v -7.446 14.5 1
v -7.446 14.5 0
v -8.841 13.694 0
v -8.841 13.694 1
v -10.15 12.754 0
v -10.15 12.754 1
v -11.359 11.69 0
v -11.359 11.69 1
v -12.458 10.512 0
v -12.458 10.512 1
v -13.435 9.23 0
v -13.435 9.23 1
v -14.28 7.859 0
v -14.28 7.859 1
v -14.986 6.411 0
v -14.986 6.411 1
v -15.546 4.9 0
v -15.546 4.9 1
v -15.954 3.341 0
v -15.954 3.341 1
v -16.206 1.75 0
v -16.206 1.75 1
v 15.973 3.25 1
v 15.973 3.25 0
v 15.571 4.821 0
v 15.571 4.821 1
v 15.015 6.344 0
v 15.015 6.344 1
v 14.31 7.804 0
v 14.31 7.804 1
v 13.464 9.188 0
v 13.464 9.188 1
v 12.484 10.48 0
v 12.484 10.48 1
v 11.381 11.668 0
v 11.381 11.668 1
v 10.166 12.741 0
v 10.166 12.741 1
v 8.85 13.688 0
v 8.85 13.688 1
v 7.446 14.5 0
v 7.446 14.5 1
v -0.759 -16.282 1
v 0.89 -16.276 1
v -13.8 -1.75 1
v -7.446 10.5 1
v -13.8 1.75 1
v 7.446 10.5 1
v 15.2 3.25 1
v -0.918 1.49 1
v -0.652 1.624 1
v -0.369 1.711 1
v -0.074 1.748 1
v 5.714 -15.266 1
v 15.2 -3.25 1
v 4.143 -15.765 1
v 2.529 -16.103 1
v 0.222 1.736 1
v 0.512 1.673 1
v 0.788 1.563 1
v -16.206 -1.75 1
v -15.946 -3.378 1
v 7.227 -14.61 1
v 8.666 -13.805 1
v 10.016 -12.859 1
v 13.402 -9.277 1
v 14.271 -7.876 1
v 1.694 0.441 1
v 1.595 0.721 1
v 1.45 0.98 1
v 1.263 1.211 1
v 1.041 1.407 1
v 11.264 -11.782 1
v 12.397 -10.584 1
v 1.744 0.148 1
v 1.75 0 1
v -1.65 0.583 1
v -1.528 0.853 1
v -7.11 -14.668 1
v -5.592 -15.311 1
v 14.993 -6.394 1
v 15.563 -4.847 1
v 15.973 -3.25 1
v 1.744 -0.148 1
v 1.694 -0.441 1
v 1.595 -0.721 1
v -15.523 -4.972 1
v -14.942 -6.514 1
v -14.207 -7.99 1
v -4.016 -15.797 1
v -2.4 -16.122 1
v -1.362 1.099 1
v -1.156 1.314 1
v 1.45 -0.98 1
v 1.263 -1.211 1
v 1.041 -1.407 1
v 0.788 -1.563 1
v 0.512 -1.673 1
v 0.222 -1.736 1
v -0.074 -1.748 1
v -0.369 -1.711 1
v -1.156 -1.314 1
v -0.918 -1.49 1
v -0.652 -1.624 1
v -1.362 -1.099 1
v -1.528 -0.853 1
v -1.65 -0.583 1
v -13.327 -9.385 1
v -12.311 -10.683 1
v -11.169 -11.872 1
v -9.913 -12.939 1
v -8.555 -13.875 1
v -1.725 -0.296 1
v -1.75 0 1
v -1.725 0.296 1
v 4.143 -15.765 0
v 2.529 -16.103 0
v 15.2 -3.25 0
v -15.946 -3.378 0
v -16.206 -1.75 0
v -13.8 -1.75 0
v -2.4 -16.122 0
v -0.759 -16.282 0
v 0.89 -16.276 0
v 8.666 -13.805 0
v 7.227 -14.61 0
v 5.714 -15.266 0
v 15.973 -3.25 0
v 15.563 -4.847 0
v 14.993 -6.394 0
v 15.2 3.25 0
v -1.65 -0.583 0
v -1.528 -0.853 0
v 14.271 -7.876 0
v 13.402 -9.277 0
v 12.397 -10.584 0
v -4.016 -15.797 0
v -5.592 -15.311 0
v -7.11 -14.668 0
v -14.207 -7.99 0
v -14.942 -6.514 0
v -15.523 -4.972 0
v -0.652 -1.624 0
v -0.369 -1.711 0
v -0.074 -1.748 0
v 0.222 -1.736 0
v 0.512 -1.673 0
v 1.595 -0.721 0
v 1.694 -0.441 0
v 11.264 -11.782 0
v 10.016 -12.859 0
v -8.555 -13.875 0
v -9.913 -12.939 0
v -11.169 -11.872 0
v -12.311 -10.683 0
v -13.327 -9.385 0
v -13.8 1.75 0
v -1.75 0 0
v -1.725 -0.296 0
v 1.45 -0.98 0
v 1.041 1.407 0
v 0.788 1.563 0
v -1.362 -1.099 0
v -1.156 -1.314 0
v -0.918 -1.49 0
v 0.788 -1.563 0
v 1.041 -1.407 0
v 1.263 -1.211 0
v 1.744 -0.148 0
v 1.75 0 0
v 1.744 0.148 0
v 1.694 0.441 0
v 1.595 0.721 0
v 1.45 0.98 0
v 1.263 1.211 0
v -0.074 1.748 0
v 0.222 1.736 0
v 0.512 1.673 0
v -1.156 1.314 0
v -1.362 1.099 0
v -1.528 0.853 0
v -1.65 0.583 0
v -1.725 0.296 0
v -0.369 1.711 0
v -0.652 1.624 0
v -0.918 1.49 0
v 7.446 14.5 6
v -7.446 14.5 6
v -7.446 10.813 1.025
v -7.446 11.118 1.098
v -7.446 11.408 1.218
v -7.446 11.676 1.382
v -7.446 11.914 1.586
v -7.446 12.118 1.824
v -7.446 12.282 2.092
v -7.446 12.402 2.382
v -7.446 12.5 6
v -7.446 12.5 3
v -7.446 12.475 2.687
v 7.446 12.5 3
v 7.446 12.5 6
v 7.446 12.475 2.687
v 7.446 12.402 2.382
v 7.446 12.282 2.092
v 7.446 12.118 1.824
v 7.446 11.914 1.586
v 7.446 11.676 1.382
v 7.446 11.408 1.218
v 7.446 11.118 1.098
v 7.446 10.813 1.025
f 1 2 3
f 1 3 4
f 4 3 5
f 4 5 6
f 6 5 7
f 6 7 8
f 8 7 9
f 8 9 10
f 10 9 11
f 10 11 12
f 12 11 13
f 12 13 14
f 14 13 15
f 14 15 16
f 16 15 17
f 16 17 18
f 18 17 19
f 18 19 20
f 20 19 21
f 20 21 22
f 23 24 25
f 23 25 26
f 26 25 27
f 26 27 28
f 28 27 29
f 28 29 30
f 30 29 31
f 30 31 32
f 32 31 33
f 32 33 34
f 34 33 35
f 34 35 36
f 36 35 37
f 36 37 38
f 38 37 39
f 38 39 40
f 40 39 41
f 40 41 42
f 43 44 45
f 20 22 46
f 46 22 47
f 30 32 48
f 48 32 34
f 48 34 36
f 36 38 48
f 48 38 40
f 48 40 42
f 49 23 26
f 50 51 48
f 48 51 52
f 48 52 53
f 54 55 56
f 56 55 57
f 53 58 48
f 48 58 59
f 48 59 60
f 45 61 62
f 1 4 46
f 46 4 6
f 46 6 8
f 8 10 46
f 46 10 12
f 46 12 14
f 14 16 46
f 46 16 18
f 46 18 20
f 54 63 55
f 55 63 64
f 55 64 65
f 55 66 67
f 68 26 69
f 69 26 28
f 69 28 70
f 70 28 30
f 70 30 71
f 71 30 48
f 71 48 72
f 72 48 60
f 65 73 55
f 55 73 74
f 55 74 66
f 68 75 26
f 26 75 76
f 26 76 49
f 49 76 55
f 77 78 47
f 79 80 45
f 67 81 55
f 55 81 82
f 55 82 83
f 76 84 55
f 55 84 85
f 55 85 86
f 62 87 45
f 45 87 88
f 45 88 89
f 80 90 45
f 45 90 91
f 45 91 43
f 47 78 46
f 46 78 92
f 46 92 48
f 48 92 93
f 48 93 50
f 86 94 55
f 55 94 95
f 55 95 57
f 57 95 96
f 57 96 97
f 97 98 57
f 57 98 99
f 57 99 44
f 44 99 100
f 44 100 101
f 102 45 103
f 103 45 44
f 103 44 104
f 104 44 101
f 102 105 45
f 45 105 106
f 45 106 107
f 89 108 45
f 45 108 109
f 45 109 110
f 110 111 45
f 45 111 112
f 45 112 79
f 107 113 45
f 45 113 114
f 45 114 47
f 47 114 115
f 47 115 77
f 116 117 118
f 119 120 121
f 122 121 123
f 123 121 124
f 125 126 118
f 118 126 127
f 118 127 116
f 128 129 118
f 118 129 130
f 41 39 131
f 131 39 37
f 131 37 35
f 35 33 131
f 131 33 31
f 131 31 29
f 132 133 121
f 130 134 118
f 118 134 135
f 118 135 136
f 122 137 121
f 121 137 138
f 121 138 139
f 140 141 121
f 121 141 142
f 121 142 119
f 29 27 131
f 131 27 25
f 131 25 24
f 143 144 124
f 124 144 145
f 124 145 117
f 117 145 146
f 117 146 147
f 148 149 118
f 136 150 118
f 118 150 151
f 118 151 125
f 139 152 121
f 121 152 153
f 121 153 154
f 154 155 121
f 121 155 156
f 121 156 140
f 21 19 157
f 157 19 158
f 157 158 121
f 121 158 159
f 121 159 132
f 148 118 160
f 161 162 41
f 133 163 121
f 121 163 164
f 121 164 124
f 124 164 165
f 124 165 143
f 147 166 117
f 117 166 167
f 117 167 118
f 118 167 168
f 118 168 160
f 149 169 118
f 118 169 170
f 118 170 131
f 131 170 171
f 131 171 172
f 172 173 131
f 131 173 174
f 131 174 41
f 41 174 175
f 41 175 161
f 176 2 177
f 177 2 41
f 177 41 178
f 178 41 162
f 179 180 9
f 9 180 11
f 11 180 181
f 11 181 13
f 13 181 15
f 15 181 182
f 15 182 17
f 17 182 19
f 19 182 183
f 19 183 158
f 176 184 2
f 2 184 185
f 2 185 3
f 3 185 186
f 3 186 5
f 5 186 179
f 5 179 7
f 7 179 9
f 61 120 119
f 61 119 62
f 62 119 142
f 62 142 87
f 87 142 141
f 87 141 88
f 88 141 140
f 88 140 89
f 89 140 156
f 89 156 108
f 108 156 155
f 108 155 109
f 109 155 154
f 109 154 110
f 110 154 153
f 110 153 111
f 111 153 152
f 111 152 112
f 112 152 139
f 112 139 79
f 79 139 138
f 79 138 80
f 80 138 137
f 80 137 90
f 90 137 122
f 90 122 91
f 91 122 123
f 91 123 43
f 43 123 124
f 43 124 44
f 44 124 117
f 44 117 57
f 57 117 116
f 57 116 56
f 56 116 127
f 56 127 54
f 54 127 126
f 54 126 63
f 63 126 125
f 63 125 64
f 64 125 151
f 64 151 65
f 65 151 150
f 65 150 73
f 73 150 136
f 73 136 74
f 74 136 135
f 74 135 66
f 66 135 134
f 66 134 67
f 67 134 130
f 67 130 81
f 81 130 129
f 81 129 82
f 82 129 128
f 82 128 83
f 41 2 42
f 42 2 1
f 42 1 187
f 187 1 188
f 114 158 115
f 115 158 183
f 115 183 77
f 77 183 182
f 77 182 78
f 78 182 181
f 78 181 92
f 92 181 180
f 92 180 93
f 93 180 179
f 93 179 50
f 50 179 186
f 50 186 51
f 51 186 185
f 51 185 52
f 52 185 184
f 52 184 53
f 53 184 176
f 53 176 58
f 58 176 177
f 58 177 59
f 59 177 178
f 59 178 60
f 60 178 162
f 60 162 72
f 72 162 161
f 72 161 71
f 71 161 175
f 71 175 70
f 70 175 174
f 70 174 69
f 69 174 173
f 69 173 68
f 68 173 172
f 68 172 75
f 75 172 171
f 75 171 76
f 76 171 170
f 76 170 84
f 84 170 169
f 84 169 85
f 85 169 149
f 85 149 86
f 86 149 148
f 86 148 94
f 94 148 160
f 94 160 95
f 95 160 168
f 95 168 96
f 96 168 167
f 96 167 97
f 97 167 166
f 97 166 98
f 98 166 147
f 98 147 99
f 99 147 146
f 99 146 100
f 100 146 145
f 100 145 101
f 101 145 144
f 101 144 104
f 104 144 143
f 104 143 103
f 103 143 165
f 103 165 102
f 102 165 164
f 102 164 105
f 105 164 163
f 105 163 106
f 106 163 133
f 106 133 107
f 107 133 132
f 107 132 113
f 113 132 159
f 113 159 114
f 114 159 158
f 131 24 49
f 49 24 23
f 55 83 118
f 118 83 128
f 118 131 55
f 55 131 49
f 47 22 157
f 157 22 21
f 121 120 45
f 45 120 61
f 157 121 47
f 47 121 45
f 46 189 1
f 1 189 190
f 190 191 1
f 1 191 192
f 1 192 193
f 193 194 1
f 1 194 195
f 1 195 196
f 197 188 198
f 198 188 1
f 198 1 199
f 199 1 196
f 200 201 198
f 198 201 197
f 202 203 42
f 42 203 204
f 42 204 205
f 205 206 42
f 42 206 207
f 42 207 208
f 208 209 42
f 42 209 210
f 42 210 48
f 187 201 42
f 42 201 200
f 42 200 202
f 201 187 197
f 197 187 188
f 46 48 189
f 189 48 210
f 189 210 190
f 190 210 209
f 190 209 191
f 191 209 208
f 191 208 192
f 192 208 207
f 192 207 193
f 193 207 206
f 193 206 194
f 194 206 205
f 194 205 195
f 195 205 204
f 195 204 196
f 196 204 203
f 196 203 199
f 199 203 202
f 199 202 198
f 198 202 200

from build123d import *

# Parameters (mm, degrees)
SKETCH_1_R          = 1.75
EXTRUDE_1_DEPTH     = 1
SKETCH_2_W          = 5
SKETCH_2_H          = 3.5
SKETCH_2_W_2        = 2
SKETCH_2_H_2        = 6.5
CUT_EXTRUDE_1_DEPTH = 2
SKETCH_3_W          = 14.891608376
SKETCH_3_H          = 2
EXTRUDE_2_DEPTH     = 5
FILLET_1_R          = 2


with BuildPart() as part:
    # 草图1 → 凸台-拉伸1 (new body)
    with BuildSketch(Plane.XY):
        with BuildLine():
            Line((-7.445804188, 14.5), (7.445804188, 14.5))
            ThreePointArc((7.445804188, 14.5), (0, -16.3), (-7.445804188, 14.5))
        make_face()
        Circle(SKETCH_1_R, mode=Mode.SUBTRACT)
    extrude(amount=EXTRUDE_1_DEPTH)

    # 草图2 → 切除-拉伸1 (cut, through all)
    with BuildSketch(Plane.XY.offset(1)):
        with Locations((-16.3, 0)):
            Rectangle(SKETCH_2_W, SKETCH_2_H)
        with Locations((16.2, 0)):
            Rectangle(SKETCH_2_W_2, SKETCH_2_H_2)
    extrude(amount=-CUT_EXTRUDE_1_DEPTH, mode=Mode.SUBTRACT)

    # 草图3 → 凸台-拉伸2 (add)
    with BuildSketch(Plane.XY.offset(1)):
        with Locations((0, 13.5)):
            Rectangle(SKETCH_3_W, SKETCH_3_H)
    extrude(amount=EXTRUDE_2_DEPTH)

    # 圆角1
    fillet_1_edges = [part.edges().sort_by_distance(p)[0] for p in [
        (0, 12.5, 1),
    ]]
    fillet(fillet_1_edges, radius=FILLET_1_R)


solid = part.part
